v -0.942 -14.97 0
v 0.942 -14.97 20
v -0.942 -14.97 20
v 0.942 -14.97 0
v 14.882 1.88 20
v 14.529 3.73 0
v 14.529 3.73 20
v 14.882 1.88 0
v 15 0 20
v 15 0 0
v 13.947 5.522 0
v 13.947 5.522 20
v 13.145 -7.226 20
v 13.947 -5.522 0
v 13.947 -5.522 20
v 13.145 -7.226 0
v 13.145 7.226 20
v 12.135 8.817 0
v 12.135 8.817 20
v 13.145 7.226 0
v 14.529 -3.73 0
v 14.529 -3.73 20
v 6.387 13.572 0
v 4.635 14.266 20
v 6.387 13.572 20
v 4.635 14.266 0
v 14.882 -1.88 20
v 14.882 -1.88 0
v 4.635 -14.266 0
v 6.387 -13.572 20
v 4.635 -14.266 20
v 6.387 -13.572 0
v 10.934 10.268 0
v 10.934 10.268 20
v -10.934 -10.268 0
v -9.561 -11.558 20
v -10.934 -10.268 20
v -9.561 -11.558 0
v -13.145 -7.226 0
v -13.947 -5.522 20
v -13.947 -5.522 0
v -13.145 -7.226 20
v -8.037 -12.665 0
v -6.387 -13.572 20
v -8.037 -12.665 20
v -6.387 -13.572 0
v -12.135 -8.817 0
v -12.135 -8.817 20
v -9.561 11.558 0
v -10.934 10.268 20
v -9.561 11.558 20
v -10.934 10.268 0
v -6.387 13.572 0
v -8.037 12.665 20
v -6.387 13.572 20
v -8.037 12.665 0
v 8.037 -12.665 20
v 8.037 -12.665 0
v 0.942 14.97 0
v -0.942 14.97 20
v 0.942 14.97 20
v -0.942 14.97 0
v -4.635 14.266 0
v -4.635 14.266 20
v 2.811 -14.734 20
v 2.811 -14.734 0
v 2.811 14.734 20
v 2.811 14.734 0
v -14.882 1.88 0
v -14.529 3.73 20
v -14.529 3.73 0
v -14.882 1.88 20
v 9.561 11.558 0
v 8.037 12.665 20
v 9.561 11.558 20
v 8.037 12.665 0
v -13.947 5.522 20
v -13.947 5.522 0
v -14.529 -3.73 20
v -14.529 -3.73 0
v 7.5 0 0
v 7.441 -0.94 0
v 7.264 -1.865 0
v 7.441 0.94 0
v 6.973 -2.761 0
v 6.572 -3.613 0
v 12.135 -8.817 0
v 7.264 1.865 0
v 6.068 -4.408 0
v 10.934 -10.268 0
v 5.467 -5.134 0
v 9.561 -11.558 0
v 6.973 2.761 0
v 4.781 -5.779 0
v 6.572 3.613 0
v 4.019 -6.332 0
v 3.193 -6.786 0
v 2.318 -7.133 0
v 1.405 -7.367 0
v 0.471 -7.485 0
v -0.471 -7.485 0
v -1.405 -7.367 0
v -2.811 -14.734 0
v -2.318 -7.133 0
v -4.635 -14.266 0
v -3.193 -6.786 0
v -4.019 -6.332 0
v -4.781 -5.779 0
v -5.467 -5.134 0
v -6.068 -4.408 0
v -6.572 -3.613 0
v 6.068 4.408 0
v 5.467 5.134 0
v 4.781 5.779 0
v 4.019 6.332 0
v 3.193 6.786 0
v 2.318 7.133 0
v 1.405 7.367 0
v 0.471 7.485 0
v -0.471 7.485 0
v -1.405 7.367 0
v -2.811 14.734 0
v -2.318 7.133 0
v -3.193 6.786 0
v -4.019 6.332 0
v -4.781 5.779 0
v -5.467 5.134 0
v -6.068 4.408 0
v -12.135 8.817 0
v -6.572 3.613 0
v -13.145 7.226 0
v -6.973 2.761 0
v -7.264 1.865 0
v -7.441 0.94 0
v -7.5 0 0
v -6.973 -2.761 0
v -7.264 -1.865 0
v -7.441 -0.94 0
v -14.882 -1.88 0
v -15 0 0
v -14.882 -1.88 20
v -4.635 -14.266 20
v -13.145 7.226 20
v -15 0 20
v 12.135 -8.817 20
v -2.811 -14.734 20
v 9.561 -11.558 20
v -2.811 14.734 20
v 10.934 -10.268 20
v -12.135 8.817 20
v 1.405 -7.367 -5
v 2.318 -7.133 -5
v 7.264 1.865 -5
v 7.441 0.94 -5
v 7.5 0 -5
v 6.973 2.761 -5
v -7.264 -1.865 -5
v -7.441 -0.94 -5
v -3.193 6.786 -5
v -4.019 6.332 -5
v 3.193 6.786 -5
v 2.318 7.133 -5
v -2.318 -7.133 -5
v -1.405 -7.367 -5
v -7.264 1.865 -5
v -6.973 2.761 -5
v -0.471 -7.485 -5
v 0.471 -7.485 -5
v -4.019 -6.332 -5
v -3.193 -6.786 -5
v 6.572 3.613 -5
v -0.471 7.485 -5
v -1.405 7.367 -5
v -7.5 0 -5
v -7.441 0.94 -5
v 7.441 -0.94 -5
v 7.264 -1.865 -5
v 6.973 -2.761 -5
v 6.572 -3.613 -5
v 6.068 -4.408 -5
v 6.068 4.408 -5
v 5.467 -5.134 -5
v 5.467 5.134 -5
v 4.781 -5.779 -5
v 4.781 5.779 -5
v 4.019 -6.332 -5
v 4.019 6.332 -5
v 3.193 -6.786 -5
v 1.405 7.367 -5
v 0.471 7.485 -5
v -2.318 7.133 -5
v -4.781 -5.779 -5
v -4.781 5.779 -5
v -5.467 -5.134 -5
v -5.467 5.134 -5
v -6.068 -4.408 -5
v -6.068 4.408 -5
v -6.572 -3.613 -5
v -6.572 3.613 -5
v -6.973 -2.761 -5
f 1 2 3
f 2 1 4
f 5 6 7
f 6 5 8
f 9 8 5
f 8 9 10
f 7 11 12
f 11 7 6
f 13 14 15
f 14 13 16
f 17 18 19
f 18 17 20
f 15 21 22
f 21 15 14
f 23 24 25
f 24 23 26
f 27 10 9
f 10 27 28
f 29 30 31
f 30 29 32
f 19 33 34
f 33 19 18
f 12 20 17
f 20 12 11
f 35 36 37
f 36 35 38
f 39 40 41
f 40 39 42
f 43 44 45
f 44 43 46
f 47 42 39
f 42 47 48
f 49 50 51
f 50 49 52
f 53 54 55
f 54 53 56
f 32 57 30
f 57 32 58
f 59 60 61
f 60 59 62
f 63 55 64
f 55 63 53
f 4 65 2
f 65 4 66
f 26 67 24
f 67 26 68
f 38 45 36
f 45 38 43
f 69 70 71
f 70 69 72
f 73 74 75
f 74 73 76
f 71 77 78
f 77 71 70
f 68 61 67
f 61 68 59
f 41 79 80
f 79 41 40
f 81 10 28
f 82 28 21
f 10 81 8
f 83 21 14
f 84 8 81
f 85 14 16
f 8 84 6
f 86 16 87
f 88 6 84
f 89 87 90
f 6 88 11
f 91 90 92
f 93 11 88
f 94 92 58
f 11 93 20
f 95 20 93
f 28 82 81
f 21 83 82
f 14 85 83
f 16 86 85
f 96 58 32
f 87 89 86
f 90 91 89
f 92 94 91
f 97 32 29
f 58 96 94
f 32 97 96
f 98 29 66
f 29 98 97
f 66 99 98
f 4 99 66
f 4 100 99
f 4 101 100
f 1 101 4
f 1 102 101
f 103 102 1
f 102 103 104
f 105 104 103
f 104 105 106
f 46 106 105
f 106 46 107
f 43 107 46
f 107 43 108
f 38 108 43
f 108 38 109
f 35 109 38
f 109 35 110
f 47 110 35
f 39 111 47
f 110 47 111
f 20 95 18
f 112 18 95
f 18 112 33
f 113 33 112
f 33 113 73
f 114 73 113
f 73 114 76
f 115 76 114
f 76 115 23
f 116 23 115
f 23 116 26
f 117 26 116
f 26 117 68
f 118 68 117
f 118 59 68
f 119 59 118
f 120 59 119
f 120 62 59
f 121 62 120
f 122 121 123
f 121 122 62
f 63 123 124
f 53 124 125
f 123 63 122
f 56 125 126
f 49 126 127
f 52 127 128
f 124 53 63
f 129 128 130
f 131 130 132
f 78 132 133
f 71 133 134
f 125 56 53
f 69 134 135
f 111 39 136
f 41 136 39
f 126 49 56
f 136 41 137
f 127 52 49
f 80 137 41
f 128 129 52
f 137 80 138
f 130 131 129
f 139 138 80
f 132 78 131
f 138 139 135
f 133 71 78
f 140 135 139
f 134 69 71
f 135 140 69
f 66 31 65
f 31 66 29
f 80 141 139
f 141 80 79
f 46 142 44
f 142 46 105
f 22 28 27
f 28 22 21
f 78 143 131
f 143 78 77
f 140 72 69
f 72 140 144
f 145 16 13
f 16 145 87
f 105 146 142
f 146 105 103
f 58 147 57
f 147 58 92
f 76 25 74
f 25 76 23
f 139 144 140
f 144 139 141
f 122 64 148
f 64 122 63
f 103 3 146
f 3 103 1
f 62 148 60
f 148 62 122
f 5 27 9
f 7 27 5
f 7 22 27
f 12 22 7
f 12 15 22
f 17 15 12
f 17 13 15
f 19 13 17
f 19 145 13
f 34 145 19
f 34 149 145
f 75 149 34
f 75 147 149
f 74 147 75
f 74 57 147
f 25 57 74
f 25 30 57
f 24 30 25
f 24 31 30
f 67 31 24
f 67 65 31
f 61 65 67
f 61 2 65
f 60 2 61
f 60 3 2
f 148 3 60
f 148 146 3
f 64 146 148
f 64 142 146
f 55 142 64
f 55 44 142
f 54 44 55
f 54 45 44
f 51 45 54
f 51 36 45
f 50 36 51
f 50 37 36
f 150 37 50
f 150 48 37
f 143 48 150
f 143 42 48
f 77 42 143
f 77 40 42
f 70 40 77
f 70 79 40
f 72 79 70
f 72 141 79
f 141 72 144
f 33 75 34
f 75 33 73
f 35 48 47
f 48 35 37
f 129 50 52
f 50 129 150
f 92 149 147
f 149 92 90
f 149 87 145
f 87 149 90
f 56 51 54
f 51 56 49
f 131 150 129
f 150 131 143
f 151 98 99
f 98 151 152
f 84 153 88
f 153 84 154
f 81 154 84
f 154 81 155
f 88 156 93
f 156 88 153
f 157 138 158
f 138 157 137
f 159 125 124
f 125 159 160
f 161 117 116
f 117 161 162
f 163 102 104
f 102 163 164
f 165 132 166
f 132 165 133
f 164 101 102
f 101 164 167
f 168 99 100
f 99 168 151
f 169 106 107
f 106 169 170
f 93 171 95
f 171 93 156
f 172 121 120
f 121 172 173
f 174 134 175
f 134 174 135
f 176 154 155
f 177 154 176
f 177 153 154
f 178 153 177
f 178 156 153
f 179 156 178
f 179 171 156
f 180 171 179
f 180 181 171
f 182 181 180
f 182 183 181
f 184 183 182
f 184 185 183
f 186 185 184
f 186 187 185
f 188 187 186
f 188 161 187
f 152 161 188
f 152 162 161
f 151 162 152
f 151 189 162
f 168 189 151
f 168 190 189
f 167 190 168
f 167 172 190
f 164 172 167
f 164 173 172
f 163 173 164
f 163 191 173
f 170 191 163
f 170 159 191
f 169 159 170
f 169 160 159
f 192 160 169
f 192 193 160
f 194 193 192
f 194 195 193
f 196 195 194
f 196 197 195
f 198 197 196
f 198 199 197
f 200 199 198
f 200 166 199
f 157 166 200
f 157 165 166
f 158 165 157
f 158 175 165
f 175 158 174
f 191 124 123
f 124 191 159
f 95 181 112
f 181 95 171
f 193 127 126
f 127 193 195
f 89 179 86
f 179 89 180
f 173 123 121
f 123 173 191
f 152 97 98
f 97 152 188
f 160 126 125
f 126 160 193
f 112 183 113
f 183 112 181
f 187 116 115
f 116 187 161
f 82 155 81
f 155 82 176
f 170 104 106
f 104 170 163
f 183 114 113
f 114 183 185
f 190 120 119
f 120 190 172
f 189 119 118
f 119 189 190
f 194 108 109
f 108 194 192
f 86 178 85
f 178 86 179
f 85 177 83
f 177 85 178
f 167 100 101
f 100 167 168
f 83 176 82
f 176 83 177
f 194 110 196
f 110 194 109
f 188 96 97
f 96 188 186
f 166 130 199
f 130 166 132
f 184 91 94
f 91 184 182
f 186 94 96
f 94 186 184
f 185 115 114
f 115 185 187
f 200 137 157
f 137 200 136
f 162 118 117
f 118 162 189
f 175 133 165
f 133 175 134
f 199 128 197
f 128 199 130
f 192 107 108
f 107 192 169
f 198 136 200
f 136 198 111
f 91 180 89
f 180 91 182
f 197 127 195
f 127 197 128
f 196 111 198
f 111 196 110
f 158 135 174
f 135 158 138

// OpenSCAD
module compound_cylinder() {
    // Larger cylinder at the top
    cylinder(h=20, d=30, $fn=50);
    
    // Smaller cylinder at the bottom
    translate([0, 0, -5])
        cylinder(h=10, d=15, $fn=50);
}

compound_cylinder();
